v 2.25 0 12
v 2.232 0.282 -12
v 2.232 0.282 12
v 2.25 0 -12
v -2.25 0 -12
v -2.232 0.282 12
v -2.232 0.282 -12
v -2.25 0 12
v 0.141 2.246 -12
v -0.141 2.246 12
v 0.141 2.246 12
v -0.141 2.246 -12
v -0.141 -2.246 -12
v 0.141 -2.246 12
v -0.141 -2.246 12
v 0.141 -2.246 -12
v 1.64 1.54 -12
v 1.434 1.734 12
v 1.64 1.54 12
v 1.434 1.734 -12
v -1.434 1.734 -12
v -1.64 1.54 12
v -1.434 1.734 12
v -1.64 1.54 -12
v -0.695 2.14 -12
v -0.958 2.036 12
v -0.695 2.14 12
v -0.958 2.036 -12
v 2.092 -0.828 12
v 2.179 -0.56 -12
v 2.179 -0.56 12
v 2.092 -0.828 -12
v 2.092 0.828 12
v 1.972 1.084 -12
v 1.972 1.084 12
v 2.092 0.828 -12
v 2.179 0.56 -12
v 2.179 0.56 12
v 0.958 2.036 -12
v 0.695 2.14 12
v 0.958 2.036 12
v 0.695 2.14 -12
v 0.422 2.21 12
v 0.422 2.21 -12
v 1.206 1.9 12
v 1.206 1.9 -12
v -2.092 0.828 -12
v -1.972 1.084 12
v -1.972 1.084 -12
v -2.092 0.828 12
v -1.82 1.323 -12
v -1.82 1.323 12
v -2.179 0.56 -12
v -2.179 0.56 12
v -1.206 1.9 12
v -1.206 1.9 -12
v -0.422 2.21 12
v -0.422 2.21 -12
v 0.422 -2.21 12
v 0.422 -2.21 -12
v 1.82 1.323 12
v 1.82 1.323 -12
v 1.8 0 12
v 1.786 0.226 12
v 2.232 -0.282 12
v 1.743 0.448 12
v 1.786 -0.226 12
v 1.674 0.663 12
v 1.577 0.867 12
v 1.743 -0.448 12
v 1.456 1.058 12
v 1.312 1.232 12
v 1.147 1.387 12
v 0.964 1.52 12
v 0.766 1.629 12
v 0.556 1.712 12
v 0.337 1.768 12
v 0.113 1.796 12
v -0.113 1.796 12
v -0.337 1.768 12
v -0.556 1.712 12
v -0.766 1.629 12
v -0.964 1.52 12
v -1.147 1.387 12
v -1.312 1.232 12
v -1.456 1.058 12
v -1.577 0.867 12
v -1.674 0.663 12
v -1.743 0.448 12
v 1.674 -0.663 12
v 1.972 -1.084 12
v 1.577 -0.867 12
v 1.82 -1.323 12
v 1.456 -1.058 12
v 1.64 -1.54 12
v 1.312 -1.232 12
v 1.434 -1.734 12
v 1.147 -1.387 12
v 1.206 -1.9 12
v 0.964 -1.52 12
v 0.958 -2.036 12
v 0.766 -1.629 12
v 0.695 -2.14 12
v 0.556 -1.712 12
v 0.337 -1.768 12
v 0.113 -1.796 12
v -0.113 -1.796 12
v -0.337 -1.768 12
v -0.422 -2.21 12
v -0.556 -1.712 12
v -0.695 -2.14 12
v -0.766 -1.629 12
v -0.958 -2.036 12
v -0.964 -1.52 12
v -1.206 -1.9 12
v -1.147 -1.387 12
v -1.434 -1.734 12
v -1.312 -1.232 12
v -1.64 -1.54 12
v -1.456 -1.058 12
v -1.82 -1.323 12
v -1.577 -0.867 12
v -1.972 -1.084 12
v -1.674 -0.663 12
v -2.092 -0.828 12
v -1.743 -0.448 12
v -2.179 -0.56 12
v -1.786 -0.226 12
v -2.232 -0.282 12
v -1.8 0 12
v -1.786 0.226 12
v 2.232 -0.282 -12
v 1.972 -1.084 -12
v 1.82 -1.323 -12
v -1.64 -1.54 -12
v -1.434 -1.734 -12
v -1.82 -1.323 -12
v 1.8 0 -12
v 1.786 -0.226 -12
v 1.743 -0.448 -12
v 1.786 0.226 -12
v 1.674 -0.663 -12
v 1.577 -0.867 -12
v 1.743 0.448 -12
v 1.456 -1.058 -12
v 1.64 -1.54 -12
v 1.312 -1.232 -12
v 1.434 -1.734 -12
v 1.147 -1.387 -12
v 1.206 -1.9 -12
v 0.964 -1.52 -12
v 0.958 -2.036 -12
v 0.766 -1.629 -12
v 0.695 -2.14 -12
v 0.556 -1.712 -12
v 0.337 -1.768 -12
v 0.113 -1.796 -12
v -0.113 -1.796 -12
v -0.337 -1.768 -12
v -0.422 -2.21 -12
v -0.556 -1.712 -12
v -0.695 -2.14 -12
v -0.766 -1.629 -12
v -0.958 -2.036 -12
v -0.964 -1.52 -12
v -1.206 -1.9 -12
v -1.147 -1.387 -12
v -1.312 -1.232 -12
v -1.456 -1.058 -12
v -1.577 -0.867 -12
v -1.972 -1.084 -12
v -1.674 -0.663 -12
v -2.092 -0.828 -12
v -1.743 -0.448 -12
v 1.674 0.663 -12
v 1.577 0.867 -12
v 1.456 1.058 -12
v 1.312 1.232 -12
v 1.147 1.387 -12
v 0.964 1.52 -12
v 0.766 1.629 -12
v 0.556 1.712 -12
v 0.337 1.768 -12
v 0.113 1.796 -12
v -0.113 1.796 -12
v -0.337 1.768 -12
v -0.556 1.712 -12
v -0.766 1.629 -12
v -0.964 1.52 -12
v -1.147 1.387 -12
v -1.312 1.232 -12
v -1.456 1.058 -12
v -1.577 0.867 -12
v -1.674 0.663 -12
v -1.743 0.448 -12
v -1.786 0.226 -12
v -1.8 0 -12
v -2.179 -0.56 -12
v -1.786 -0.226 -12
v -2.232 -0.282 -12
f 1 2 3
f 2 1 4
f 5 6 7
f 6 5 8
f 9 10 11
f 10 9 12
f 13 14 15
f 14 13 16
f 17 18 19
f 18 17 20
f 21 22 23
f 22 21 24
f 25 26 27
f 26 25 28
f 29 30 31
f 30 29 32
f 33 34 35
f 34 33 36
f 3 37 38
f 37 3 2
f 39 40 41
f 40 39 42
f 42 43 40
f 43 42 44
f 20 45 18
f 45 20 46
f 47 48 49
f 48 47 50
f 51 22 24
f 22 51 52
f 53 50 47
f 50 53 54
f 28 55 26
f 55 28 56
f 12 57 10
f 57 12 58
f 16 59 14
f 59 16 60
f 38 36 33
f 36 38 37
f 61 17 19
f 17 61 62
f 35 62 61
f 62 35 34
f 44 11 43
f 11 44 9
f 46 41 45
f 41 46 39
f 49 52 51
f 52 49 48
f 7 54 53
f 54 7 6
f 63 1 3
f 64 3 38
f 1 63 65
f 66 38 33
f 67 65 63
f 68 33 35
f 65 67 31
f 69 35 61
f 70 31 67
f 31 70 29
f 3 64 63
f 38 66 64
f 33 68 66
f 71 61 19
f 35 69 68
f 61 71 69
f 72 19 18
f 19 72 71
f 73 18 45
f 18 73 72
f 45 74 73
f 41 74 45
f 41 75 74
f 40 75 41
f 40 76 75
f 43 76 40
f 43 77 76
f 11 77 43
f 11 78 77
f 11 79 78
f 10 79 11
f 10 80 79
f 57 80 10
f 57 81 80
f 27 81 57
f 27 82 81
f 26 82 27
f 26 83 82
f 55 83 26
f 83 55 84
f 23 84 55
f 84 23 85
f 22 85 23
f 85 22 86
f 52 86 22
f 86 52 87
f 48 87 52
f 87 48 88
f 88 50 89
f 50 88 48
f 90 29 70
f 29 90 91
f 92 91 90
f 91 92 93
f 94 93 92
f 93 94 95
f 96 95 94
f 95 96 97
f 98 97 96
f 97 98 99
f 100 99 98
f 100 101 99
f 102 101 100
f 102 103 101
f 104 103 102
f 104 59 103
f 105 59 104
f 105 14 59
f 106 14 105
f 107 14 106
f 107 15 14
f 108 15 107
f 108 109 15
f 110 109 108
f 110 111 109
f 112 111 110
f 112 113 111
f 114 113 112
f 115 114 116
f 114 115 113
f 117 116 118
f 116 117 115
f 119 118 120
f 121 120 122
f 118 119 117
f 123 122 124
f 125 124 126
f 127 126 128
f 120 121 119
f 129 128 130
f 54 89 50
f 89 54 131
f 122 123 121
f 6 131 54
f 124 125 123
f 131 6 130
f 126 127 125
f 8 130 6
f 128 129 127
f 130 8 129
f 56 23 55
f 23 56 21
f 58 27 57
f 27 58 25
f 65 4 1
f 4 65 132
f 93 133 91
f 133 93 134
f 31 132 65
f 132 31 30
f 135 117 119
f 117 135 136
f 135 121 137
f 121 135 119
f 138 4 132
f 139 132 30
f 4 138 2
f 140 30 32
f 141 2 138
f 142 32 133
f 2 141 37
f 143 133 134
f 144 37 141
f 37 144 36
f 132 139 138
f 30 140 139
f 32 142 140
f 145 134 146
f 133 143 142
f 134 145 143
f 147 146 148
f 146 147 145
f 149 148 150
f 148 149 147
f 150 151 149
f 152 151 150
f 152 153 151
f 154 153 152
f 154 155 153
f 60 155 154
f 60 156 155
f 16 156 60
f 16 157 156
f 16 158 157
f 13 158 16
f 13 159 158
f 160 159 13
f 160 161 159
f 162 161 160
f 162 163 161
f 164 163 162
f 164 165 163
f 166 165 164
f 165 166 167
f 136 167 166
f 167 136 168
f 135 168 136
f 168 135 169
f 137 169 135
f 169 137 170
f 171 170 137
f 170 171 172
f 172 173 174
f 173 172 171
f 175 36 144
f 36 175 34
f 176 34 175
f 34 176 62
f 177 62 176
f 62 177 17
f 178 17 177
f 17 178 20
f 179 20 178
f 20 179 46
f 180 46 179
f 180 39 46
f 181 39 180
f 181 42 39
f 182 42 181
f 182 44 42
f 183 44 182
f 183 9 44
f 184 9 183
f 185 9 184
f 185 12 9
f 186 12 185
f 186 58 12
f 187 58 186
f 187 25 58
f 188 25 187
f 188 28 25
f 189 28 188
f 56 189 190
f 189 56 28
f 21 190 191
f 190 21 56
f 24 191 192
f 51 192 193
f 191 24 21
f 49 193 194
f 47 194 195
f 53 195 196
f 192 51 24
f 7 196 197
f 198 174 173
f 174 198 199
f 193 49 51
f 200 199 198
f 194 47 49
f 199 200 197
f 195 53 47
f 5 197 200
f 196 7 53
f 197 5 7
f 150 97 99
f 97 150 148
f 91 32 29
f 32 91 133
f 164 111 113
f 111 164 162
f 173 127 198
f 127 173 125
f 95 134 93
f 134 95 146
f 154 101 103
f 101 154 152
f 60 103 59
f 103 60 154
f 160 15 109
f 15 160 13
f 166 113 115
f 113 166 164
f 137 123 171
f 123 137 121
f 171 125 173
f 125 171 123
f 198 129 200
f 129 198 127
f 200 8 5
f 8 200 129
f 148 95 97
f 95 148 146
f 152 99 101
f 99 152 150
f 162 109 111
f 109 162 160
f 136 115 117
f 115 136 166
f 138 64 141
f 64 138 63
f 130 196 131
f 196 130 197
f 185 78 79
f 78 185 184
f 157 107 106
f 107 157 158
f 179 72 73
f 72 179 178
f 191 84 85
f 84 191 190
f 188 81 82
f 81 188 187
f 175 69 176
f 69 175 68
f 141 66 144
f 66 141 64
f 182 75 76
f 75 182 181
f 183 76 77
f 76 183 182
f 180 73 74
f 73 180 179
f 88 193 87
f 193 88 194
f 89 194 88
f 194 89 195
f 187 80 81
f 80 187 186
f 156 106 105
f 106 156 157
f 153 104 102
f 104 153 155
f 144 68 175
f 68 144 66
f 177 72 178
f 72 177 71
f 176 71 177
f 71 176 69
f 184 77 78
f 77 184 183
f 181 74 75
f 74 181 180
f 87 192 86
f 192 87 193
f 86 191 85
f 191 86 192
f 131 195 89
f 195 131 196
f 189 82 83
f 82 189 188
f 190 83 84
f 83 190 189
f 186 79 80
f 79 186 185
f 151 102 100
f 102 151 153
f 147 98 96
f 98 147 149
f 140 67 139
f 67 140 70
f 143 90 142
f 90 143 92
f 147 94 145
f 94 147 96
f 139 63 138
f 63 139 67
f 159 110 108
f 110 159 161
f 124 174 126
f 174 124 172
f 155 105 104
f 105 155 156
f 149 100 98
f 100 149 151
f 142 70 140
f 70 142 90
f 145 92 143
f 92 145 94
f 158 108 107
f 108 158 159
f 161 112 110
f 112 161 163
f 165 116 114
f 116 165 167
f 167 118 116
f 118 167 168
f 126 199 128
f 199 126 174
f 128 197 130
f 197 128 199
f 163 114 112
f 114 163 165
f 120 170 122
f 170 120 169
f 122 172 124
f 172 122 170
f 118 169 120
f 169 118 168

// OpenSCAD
$fn = 50;


difference() {
	union() {
		translate(v = [0, 0, -12.0000000000]) {
			cylinder(h = 24, r = 2.2500000000);
		}
	}
	union() {
		translate(v = [0, 0, -100.0000000000]) {
			cylinder(h = 200, r = 1.8000000000);
		}
	}
}
